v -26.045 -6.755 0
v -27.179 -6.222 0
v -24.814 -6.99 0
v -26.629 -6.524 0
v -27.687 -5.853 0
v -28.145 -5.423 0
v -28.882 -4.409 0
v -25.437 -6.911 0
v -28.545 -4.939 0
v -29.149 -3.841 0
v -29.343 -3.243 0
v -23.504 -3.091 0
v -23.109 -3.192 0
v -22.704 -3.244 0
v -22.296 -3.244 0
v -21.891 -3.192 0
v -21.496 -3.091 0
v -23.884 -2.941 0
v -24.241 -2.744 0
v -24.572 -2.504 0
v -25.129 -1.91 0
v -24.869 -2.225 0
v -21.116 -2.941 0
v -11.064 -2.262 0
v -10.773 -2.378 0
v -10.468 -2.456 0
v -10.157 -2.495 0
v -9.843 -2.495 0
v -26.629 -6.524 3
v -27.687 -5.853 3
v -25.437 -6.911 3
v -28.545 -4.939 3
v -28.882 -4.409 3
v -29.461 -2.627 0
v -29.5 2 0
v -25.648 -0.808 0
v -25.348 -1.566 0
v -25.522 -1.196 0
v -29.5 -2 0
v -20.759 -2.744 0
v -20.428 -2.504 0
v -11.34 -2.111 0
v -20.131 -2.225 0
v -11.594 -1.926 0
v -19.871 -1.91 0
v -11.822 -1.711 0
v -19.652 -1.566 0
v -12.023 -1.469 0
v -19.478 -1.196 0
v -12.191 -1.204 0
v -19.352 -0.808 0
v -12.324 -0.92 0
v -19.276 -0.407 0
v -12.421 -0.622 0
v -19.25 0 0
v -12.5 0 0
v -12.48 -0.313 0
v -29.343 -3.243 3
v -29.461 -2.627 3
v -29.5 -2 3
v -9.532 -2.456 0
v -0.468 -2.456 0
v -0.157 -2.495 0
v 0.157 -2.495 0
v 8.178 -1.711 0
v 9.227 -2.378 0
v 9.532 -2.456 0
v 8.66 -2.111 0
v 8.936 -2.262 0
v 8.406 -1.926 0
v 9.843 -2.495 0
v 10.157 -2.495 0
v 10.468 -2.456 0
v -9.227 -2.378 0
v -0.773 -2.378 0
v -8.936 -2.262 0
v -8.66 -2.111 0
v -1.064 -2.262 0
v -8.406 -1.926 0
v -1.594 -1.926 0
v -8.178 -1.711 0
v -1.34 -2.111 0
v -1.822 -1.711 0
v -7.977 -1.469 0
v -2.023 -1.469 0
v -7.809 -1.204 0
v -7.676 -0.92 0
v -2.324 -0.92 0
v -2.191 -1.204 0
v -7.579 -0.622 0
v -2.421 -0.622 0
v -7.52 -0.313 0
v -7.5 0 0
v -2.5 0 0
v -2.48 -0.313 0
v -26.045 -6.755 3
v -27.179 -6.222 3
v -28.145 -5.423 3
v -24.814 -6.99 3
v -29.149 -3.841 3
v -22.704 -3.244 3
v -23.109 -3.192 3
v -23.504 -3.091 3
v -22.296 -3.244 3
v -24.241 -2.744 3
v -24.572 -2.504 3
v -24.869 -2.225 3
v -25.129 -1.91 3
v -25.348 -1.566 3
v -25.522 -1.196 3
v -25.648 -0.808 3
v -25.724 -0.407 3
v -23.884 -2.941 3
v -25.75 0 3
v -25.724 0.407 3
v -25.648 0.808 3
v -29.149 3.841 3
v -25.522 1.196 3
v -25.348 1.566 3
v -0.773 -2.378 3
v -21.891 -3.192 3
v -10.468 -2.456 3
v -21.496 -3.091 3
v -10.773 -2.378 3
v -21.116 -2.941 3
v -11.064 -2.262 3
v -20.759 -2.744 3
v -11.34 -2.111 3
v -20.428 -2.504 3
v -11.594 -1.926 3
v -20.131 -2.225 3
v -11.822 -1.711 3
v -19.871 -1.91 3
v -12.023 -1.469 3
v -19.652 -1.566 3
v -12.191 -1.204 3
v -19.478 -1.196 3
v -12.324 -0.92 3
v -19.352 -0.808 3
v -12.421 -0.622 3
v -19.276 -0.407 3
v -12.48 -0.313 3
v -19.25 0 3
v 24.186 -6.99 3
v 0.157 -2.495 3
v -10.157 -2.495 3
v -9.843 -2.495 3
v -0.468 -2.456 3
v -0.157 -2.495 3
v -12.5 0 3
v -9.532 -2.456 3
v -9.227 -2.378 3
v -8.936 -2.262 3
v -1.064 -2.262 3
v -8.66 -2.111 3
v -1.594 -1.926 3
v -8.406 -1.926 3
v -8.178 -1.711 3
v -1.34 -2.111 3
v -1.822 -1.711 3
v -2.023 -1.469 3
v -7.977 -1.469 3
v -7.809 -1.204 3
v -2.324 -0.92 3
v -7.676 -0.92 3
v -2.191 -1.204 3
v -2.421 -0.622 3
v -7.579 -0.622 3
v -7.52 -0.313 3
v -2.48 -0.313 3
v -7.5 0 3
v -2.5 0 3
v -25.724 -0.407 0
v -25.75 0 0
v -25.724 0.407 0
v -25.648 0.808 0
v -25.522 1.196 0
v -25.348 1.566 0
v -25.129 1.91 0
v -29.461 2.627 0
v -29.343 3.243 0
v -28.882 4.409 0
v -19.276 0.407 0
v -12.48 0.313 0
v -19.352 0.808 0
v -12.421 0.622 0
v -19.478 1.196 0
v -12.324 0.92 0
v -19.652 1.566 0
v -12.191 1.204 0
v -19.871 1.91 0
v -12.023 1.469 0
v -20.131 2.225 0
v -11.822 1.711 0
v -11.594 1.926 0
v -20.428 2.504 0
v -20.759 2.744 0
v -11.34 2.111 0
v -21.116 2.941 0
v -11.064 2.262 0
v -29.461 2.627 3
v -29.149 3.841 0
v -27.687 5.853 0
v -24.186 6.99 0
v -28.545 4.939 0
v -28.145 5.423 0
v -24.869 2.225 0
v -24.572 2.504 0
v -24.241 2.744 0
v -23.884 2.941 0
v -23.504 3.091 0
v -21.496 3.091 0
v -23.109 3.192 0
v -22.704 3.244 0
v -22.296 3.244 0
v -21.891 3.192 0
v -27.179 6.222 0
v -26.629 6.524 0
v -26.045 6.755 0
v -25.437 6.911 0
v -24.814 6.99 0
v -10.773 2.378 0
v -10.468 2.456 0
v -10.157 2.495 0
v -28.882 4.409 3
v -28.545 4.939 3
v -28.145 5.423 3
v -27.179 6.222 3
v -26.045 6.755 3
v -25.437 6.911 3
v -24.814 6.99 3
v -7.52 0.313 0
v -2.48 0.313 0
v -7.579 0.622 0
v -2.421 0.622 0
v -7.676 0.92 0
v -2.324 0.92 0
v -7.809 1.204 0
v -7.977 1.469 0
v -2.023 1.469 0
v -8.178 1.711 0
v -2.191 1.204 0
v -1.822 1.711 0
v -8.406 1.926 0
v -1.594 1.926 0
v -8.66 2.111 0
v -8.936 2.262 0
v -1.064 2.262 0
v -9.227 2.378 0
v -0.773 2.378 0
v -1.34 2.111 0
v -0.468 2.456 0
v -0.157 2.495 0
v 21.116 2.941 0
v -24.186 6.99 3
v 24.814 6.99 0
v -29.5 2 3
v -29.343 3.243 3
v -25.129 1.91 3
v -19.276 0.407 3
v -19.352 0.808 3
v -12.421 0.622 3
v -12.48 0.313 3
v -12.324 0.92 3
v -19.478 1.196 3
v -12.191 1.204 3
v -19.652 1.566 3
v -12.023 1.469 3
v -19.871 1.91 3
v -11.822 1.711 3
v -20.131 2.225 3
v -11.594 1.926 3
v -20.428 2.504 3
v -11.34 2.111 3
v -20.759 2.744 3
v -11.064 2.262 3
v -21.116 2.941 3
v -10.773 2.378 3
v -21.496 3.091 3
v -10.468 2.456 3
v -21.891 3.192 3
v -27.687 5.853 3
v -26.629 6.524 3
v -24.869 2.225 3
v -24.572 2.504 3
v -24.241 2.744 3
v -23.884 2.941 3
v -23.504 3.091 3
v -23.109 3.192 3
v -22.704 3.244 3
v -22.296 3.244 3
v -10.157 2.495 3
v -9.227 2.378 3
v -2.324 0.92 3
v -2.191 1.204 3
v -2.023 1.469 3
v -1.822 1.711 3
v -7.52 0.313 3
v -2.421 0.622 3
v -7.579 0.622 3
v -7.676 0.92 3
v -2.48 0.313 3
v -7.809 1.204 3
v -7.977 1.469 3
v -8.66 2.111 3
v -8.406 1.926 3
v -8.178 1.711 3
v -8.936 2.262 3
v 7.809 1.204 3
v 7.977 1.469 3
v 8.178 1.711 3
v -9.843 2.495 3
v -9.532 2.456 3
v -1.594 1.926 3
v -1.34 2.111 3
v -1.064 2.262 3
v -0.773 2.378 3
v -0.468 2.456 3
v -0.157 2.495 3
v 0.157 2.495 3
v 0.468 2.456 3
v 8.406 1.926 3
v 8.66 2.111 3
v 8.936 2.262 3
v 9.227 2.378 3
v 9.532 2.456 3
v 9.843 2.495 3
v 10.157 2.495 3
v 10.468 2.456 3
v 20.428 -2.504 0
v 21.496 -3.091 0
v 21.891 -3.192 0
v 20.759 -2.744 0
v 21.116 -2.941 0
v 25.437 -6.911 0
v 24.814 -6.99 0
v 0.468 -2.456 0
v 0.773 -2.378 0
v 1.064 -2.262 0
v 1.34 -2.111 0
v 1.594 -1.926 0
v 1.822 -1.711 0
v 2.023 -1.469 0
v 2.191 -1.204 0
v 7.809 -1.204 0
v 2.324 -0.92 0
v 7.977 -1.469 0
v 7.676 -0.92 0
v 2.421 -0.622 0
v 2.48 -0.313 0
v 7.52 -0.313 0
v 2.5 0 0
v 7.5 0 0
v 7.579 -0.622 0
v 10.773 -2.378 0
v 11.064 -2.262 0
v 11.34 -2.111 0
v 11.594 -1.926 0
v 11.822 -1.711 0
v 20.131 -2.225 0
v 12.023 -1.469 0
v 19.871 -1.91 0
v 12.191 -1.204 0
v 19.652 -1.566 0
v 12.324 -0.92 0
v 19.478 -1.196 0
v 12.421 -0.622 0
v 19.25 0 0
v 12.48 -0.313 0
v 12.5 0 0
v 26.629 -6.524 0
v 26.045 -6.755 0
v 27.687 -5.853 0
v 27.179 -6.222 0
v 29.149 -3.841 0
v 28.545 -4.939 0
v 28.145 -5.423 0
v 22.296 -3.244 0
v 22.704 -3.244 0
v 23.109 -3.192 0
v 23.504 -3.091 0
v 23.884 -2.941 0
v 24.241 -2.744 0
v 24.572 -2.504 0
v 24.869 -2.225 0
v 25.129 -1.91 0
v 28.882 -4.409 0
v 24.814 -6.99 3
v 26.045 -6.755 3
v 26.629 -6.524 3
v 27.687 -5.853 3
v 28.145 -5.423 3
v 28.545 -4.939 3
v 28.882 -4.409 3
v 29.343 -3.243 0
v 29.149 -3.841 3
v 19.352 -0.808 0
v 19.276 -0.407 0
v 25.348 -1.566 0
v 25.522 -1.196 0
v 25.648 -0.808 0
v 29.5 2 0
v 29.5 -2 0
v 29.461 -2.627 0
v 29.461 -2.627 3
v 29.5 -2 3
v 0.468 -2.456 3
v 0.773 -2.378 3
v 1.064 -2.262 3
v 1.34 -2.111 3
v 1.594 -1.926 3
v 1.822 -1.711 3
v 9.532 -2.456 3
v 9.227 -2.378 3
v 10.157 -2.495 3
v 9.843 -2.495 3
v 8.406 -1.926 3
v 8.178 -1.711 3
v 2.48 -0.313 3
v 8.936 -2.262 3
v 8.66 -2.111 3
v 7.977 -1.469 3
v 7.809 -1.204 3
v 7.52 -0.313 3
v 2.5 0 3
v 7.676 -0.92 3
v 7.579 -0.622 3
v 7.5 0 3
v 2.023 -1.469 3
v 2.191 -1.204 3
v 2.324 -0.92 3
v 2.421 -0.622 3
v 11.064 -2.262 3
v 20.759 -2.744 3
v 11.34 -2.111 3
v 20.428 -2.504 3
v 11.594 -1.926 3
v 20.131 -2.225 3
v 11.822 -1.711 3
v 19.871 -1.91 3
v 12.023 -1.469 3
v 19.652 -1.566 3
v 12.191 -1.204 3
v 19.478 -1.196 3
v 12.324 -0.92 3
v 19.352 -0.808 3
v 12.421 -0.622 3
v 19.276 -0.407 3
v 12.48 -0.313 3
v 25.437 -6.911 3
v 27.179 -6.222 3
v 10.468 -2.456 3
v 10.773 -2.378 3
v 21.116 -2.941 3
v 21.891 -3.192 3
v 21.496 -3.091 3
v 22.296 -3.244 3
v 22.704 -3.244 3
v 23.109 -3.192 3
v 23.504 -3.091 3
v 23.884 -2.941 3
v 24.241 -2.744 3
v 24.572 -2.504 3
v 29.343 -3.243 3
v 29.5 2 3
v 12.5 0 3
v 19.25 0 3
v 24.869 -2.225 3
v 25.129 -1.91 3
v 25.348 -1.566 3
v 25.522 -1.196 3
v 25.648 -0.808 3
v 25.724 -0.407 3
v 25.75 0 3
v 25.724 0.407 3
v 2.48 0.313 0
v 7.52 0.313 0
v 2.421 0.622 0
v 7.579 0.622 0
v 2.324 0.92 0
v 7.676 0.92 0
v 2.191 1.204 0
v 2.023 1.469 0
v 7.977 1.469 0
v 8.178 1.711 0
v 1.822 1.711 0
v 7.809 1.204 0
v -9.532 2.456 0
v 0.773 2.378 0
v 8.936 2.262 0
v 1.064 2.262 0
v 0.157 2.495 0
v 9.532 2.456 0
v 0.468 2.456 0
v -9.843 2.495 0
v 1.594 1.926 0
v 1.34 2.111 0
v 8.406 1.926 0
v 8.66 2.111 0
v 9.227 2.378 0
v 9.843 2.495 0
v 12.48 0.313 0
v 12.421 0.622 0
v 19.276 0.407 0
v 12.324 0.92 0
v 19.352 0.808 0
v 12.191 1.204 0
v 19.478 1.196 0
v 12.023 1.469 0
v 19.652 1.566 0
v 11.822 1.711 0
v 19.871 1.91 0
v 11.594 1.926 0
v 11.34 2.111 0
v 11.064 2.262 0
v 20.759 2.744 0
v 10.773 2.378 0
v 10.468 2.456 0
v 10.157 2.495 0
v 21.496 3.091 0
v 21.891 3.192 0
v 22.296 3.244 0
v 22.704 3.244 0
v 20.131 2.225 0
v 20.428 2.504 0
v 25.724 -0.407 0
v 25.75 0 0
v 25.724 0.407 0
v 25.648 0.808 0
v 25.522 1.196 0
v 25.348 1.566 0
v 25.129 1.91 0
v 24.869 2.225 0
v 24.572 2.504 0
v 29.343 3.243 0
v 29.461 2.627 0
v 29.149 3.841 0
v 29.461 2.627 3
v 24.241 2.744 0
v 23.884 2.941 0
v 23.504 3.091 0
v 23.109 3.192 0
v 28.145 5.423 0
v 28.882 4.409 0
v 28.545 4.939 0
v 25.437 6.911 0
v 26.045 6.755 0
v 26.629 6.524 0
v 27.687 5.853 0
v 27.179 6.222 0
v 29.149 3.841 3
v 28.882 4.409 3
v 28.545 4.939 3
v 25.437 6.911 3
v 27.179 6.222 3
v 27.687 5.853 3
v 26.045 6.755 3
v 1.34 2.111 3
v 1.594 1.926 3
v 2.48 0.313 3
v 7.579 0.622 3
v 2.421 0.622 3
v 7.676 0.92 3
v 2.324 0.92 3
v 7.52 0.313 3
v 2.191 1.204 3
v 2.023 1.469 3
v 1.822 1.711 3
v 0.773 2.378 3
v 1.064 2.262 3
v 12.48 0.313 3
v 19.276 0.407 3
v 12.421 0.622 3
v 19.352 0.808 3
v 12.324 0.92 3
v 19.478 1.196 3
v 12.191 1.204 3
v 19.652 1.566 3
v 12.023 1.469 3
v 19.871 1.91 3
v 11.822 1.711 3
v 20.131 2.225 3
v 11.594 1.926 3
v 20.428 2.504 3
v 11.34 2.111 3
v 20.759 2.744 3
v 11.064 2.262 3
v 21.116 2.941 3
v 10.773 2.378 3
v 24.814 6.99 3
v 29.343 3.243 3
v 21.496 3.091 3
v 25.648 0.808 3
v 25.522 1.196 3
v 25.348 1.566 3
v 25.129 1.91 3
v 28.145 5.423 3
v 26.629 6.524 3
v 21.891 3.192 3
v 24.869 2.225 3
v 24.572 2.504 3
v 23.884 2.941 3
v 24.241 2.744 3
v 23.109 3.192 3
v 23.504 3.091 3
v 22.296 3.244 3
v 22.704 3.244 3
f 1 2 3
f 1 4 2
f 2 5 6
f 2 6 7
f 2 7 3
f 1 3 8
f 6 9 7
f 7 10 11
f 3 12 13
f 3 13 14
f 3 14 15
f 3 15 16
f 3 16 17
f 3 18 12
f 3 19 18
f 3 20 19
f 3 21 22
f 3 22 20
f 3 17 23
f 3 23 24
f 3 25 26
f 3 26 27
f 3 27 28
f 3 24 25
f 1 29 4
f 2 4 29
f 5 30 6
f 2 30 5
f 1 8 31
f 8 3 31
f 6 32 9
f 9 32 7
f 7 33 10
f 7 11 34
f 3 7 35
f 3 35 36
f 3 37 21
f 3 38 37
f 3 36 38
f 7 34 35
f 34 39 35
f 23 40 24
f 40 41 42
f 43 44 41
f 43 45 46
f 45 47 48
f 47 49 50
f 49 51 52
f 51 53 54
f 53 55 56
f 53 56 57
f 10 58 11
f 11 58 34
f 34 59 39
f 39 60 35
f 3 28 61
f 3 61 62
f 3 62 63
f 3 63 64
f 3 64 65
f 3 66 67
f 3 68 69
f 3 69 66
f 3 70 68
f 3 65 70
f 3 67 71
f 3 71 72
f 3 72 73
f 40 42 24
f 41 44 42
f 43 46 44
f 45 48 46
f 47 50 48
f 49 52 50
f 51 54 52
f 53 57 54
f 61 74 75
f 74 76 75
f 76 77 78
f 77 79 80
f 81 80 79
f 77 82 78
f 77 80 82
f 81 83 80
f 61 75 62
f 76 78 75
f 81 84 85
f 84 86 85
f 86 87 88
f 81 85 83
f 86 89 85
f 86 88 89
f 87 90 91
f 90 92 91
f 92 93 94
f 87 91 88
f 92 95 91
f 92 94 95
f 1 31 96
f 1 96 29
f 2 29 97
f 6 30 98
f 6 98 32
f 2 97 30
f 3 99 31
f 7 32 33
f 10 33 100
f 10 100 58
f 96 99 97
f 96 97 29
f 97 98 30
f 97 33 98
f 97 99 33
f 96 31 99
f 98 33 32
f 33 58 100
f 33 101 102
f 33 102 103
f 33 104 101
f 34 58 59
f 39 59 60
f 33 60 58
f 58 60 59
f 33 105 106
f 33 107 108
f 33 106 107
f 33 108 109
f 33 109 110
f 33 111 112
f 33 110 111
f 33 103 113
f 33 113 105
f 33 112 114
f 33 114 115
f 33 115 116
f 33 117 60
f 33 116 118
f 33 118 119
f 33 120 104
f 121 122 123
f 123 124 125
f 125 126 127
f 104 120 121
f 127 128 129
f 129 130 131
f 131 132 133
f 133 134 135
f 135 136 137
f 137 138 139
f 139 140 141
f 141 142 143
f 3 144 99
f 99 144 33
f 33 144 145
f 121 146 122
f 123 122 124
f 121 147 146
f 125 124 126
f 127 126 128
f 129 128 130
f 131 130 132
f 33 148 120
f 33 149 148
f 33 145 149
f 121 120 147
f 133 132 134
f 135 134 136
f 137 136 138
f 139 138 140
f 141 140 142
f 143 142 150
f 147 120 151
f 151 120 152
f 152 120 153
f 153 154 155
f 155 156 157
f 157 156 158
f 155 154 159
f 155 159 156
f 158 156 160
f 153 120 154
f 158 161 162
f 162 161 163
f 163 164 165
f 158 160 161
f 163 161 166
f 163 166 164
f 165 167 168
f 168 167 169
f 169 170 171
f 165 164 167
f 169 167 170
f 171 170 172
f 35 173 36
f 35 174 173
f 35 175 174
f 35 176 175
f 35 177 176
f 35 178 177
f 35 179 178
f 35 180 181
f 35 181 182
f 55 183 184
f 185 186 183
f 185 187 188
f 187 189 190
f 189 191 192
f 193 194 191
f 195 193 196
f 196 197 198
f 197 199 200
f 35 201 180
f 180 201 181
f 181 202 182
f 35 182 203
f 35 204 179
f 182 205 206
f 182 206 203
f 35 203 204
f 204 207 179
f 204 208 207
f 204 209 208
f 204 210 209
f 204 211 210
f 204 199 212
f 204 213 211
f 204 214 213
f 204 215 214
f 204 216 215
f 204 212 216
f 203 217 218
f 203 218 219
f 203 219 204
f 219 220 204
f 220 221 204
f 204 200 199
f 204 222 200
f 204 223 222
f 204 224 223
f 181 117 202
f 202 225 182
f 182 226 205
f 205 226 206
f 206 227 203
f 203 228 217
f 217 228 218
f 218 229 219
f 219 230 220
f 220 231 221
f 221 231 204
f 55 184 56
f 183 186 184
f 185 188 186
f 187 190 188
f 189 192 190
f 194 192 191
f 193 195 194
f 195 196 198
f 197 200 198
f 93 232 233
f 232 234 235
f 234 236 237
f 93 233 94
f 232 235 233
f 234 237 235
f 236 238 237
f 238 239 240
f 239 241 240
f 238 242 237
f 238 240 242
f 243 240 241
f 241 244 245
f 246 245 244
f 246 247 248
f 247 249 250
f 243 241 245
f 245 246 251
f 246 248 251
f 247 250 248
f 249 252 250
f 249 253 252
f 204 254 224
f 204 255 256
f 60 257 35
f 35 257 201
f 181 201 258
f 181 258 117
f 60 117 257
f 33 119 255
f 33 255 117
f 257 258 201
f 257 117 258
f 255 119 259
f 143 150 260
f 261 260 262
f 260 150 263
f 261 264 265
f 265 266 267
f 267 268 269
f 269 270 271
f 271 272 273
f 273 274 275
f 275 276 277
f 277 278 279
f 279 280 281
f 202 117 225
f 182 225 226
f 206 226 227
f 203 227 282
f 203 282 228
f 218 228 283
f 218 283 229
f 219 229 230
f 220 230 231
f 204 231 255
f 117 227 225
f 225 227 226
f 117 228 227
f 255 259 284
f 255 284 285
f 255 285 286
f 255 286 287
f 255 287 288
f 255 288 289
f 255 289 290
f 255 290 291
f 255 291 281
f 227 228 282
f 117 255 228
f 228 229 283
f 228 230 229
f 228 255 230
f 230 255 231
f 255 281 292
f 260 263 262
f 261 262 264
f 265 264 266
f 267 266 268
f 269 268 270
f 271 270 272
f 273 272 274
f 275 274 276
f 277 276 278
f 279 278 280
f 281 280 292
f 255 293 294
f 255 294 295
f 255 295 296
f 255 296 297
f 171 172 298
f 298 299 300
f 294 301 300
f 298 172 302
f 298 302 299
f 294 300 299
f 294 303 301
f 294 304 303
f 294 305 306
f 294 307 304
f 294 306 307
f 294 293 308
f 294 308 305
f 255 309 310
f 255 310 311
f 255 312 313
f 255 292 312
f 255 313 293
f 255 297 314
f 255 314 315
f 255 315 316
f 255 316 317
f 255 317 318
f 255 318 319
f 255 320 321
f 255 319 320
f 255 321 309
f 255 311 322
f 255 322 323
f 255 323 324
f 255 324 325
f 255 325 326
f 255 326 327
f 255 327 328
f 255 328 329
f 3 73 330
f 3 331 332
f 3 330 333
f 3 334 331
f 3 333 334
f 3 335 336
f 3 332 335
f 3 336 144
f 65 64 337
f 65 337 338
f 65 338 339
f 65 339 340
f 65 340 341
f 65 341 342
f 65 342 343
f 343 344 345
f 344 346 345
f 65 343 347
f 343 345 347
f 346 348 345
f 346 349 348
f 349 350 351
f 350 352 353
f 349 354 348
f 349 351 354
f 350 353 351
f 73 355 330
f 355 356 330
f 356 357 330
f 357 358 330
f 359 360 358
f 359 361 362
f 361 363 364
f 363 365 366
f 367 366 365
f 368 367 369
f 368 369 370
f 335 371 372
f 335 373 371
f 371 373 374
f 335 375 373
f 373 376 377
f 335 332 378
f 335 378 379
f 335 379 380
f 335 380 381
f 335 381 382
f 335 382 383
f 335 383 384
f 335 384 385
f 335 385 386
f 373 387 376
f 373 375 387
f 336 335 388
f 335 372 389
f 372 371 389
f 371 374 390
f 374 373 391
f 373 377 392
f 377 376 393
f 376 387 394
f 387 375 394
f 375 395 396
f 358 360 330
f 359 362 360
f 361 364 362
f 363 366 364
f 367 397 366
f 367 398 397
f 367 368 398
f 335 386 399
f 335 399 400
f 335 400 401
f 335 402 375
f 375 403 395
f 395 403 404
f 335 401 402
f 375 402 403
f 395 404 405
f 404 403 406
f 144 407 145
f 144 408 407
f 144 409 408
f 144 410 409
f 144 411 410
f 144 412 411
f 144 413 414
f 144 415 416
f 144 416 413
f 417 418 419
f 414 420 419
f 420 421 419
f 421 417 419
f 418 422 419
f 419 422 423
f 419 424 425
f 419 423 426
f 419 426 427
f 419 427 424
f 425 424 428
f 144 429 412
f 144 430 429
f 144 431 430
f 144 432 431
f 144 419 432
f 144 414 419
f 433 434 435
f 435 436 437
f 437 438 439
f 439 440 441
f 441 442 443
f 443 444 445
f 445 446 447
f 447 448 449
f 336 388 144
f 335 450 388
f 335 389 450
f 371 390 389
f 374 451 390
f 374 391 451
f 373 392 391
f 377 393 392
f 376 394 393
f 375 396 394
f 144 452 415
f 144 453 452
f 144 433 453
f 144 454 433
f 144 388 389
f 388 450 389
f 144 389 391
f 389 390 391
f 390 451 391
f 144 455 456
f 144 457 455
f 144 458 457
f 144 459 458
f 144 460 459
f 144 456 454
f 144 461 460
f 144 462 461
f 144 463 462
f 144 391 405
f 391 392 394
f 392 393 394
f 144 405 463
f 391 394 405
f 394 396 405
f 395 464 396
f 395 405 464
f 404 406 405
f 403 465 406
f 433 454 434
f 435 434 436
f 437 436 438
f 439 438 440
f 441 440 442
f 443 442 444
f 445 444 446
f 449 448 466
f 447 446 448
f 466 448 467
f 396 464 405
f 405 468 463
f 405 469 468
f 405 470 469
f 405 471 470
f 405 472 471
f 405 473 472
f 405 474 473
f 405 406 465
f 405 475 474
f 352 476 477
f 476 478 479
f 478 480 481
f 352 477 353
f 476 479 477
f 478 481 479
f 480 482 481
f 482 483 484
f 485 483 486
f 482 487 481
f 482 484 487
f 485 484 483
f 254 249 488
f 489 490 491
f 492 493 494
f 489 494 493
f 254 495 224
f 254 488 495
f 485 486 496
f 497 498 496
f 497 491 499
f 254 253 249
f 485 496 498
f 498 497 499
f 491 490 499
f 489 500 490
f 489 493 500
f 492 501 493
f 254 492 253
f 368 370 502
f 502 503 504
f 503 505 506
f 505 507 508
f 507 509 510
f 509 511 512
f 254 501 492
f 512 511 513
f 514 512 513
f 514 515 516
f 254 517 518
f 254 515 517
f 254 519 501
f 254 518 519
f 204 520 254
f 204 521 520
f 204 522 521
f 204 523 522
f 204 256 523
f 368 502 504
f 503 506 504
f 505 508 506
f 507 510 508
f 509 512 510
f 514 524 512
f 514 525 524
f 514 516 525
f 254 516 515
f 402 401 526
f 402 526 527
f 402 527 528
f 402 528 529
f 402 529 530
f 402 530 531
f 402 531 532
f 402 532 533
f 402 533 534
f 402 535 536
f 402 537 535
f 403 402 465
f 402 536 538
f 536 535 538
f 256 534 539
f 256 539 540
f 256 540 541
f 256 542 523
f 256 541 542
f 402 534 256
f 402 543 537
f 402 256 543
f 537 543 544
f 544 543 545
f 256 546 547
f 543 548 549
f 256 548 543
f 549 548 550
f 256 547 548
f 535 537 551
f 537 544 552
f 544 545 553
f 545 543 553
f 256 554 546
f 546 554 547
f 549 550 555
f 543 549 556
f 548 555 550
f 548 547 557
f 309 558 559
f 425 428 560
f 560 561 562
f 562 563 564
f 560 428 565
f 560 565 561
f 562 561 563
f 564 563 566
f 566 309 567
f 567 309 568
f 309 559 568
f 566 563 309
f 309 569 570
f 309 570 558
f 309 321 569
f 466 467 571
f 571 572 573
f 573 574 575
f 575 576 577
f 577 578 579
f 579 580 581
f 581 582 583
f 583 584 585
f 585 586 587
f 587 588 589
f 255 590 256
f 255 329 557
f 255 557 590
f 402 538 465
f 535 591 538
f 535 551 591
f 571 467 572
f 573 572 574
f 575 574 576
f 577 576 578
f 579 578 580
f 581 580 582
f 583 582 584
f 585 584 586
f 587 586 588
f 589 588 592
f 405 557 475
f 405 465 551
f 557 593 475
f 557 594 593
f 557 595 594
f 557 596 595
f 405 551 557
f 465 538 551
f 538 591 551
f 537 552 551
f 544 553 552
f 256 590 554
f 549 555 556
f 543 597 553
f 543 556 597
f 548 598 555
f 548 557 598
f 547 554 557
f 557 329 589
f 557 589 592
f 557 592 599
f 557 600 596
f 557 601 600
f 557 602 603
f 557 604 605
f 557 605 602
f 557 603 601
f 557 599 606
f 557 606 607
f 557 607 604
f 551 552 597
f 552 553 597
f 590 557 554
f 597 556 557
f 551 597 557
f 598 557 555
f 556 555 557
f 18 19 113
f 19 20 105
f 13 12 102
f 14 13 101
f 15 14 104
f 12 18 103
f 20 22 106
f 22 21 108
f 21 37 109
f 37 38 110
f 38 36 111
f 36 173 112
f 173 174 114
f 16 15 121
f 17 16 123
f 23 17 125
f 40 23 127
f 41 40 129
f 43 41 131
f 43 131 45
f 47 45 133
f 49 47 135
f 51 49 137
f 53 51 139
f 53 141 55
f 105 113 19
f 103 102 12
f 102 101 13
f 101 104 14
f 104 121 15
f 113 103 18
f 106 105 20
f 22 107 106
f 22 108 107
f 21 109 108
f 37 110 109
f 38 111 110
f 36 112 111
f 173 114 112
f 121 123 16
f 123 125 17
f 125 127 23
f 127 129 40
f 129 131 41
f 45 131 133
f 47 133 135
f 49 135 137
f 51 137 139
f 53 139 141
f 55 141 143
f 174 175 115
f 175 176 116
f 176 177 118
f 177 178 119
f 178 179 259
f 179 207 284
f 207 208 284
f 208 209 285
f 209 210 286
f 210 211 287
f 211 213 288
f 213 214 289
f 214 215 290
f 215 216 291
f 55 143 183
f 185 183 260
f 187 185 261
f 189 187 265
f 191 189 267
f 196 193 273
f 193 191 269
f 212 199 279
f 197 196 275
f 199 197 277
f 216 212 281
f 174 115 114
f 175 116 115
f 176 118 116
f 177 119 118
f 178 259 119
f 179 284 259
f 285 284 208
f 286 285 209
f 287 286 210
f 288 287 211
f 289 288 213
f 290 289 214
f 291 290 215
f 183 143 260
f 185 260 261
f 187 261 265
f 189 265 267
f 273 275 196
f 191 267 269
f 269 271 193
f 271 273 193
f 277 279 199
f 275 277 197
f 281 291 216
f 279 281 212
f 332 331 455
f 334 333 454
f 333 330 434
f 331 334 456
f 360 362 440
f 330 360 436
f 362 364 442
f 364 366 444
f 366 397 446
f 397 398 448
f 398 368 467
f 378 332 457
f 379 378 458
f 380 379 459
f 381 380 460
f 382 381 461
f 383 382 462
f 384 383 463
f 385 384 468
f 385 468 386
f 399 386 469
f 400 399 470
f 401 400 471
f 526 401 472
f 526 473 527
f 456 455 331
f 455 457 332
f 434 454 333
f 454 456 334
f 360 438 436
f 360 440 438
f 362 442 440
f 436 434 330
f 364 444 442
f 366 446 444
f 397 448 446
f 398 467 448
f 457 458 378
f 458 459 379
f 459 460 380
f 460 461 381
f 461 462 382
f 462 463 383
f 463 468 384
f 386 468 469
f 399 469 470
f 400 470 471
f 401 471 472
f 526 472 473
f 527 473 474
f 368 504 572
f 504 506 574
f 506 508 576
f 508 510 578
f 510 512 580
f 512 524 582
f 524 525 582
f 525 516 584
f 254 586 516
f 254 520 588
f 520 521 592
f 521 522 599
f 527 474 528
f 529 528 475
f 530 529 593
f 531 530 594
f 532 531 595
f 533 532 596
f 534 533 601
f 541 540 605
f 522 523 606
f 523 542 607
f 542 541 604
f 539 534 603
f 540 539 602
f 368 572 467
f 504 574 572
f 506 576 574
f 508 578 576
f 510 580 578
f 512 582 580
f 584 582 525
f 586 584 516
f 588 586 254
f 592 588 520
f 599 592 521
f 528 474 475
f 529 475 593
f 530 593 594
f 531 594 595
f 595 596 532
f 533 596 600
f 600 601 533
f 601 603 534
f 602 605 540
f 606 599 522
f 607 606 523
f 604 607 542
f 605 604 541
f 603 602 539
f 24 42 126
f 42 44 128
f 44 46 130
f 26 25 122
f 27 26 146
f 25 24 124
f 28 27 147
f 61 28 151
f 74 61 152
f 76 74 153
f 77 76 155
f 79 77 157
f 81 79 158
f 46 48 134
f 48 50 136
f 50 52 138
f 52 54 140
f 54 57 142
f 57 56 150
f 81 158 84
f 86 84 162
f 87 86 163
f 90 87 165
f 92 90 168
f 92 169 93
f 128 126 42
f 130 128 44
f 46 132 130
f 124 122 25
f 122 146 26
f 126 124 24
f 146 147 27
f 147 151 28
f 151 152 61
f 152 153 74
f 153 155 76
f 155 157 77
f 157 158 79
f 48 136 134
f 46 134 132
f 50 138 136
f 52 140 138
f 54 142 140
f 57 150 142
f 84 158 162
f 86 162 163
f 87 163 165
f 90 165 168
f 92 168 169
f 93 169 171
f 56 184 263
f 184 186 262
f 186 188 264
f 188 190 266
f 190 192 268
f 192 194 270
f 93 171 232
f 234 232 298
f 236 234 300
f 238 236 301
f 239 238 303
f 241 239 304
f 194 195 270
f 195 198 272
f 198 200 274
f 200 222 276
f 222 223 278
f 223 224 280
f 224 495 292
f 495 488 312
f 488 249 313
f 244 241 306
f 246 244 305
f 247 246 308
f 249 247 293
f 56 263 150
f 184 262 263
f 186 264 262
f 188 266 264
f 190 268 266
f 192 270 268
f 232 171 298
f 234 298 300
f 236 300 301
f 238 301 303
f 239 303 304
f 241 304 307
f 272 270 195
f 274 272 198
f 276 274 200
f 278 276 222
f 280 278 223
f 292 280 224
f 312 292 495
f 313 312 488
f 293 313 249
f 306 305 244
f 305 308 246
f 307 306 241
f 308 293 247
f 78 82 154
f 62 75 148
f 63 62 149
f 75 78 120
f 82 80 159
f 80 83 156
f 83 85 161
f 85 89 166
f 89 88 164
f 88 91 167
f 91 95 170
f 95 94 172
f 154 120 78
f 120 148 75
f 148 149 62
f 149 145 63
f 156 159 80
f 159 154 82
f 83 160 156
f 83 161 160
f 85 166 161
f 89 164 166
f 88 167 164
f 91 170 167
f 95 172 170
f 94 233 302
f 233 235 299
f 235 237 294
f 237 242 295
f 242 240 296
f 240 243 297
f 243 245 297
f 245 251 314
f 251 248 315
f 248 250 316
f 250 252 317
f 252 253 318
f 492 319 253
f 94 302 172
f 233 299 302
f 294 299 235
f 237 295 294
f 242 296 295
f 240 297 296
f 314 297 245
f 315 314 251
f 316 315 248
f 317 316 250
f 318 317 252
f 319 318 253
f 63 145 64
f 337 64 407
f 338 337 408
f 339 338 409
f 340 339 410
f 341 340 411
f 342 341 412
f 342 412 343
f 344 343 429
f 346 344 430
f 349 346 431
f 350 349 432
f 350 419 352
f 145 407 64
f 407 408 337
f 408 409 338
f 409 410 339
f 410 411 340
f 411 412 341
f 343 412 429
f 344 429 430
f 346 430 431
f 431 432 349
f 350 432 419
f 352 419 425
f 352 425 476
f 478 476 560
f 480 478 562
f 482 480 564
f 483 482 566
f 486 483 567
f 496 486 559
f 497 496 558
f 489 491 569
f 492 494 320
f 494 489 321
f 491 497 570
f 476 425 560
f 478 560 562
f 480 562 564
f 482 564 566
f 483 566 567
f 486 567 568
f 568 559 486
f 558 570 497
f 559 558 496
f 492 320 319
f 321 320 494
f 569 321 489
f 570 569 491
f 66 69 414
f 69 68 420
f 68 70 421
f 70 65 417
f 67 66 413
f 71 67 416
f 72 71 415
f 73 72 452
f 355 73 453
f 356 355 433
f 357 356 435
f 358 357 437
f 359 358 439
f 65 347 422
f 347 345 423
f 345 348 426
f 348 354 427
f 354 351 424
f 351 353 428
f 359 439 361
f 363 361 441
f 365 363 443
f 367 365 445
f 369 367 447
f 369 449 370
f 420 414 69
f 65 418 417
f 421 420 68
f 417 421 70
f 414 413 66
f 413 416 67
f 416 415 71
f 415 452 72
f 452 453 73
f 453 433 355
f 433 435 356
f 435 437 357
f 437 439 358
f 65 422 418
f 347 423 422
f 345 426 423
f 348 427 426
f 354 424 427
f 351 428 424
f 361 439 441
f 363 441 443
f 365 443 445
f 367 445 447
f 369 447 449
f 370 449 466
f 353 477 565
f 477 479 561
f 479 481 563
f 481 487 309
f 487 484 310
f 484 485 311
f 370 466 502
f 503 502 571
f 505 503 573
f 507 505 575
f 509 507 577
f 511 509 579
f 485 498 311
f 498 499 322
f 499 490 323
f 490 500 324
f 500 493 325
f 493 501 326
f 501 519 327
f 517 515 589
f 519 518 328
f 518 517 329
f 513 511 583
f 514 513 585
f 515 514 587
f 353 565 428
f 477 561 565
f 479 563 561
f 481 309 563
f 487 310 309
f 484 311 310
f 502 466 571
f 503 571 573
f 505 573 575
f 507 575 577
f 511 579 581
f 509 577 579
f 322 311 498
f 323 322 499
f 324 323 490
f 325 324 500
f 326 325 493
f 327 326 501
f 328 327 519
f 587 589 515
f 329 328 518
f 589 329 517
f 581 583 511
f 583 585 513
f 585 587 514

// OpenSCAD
$fn = 50;

difference() {
	union() {
		hull() {
			translate(v = [-24.5, 2.0, 0]) {
				cylinder(h = 3, r = 5);
			}
			translate(v = [24.5, 2.0, 0]) {
				cylinder(h = 3, r = 5);
			}
			translate(v = [-24.5, -2.0, 0]) {
				cylinder(h = 3, r = 5);
			}
			translate(v = [24.5, -2.0, 0]) {
				cylinder(h = 3, r = 5);
			}
		}
	}
	union() {
		translate(v = [-22.5, 0.0, 0]) {
			cylinder(h = 3, r = 3.25);
		}
		translate(v = [22.5, 0.0, 0]) {
			cylinder(h = 3, r = 3.25);
		}
		translate(v = [-10.0, 0, 0.0]) {
			cylinder(h = 3, r = 2.5);
		}
		cylinder(h = 3, r = 2.5);
		translate(v = [10.0, 0, 0.0]) {
			cylinder(h = 3, r = 2.5);
		}
	}
}
